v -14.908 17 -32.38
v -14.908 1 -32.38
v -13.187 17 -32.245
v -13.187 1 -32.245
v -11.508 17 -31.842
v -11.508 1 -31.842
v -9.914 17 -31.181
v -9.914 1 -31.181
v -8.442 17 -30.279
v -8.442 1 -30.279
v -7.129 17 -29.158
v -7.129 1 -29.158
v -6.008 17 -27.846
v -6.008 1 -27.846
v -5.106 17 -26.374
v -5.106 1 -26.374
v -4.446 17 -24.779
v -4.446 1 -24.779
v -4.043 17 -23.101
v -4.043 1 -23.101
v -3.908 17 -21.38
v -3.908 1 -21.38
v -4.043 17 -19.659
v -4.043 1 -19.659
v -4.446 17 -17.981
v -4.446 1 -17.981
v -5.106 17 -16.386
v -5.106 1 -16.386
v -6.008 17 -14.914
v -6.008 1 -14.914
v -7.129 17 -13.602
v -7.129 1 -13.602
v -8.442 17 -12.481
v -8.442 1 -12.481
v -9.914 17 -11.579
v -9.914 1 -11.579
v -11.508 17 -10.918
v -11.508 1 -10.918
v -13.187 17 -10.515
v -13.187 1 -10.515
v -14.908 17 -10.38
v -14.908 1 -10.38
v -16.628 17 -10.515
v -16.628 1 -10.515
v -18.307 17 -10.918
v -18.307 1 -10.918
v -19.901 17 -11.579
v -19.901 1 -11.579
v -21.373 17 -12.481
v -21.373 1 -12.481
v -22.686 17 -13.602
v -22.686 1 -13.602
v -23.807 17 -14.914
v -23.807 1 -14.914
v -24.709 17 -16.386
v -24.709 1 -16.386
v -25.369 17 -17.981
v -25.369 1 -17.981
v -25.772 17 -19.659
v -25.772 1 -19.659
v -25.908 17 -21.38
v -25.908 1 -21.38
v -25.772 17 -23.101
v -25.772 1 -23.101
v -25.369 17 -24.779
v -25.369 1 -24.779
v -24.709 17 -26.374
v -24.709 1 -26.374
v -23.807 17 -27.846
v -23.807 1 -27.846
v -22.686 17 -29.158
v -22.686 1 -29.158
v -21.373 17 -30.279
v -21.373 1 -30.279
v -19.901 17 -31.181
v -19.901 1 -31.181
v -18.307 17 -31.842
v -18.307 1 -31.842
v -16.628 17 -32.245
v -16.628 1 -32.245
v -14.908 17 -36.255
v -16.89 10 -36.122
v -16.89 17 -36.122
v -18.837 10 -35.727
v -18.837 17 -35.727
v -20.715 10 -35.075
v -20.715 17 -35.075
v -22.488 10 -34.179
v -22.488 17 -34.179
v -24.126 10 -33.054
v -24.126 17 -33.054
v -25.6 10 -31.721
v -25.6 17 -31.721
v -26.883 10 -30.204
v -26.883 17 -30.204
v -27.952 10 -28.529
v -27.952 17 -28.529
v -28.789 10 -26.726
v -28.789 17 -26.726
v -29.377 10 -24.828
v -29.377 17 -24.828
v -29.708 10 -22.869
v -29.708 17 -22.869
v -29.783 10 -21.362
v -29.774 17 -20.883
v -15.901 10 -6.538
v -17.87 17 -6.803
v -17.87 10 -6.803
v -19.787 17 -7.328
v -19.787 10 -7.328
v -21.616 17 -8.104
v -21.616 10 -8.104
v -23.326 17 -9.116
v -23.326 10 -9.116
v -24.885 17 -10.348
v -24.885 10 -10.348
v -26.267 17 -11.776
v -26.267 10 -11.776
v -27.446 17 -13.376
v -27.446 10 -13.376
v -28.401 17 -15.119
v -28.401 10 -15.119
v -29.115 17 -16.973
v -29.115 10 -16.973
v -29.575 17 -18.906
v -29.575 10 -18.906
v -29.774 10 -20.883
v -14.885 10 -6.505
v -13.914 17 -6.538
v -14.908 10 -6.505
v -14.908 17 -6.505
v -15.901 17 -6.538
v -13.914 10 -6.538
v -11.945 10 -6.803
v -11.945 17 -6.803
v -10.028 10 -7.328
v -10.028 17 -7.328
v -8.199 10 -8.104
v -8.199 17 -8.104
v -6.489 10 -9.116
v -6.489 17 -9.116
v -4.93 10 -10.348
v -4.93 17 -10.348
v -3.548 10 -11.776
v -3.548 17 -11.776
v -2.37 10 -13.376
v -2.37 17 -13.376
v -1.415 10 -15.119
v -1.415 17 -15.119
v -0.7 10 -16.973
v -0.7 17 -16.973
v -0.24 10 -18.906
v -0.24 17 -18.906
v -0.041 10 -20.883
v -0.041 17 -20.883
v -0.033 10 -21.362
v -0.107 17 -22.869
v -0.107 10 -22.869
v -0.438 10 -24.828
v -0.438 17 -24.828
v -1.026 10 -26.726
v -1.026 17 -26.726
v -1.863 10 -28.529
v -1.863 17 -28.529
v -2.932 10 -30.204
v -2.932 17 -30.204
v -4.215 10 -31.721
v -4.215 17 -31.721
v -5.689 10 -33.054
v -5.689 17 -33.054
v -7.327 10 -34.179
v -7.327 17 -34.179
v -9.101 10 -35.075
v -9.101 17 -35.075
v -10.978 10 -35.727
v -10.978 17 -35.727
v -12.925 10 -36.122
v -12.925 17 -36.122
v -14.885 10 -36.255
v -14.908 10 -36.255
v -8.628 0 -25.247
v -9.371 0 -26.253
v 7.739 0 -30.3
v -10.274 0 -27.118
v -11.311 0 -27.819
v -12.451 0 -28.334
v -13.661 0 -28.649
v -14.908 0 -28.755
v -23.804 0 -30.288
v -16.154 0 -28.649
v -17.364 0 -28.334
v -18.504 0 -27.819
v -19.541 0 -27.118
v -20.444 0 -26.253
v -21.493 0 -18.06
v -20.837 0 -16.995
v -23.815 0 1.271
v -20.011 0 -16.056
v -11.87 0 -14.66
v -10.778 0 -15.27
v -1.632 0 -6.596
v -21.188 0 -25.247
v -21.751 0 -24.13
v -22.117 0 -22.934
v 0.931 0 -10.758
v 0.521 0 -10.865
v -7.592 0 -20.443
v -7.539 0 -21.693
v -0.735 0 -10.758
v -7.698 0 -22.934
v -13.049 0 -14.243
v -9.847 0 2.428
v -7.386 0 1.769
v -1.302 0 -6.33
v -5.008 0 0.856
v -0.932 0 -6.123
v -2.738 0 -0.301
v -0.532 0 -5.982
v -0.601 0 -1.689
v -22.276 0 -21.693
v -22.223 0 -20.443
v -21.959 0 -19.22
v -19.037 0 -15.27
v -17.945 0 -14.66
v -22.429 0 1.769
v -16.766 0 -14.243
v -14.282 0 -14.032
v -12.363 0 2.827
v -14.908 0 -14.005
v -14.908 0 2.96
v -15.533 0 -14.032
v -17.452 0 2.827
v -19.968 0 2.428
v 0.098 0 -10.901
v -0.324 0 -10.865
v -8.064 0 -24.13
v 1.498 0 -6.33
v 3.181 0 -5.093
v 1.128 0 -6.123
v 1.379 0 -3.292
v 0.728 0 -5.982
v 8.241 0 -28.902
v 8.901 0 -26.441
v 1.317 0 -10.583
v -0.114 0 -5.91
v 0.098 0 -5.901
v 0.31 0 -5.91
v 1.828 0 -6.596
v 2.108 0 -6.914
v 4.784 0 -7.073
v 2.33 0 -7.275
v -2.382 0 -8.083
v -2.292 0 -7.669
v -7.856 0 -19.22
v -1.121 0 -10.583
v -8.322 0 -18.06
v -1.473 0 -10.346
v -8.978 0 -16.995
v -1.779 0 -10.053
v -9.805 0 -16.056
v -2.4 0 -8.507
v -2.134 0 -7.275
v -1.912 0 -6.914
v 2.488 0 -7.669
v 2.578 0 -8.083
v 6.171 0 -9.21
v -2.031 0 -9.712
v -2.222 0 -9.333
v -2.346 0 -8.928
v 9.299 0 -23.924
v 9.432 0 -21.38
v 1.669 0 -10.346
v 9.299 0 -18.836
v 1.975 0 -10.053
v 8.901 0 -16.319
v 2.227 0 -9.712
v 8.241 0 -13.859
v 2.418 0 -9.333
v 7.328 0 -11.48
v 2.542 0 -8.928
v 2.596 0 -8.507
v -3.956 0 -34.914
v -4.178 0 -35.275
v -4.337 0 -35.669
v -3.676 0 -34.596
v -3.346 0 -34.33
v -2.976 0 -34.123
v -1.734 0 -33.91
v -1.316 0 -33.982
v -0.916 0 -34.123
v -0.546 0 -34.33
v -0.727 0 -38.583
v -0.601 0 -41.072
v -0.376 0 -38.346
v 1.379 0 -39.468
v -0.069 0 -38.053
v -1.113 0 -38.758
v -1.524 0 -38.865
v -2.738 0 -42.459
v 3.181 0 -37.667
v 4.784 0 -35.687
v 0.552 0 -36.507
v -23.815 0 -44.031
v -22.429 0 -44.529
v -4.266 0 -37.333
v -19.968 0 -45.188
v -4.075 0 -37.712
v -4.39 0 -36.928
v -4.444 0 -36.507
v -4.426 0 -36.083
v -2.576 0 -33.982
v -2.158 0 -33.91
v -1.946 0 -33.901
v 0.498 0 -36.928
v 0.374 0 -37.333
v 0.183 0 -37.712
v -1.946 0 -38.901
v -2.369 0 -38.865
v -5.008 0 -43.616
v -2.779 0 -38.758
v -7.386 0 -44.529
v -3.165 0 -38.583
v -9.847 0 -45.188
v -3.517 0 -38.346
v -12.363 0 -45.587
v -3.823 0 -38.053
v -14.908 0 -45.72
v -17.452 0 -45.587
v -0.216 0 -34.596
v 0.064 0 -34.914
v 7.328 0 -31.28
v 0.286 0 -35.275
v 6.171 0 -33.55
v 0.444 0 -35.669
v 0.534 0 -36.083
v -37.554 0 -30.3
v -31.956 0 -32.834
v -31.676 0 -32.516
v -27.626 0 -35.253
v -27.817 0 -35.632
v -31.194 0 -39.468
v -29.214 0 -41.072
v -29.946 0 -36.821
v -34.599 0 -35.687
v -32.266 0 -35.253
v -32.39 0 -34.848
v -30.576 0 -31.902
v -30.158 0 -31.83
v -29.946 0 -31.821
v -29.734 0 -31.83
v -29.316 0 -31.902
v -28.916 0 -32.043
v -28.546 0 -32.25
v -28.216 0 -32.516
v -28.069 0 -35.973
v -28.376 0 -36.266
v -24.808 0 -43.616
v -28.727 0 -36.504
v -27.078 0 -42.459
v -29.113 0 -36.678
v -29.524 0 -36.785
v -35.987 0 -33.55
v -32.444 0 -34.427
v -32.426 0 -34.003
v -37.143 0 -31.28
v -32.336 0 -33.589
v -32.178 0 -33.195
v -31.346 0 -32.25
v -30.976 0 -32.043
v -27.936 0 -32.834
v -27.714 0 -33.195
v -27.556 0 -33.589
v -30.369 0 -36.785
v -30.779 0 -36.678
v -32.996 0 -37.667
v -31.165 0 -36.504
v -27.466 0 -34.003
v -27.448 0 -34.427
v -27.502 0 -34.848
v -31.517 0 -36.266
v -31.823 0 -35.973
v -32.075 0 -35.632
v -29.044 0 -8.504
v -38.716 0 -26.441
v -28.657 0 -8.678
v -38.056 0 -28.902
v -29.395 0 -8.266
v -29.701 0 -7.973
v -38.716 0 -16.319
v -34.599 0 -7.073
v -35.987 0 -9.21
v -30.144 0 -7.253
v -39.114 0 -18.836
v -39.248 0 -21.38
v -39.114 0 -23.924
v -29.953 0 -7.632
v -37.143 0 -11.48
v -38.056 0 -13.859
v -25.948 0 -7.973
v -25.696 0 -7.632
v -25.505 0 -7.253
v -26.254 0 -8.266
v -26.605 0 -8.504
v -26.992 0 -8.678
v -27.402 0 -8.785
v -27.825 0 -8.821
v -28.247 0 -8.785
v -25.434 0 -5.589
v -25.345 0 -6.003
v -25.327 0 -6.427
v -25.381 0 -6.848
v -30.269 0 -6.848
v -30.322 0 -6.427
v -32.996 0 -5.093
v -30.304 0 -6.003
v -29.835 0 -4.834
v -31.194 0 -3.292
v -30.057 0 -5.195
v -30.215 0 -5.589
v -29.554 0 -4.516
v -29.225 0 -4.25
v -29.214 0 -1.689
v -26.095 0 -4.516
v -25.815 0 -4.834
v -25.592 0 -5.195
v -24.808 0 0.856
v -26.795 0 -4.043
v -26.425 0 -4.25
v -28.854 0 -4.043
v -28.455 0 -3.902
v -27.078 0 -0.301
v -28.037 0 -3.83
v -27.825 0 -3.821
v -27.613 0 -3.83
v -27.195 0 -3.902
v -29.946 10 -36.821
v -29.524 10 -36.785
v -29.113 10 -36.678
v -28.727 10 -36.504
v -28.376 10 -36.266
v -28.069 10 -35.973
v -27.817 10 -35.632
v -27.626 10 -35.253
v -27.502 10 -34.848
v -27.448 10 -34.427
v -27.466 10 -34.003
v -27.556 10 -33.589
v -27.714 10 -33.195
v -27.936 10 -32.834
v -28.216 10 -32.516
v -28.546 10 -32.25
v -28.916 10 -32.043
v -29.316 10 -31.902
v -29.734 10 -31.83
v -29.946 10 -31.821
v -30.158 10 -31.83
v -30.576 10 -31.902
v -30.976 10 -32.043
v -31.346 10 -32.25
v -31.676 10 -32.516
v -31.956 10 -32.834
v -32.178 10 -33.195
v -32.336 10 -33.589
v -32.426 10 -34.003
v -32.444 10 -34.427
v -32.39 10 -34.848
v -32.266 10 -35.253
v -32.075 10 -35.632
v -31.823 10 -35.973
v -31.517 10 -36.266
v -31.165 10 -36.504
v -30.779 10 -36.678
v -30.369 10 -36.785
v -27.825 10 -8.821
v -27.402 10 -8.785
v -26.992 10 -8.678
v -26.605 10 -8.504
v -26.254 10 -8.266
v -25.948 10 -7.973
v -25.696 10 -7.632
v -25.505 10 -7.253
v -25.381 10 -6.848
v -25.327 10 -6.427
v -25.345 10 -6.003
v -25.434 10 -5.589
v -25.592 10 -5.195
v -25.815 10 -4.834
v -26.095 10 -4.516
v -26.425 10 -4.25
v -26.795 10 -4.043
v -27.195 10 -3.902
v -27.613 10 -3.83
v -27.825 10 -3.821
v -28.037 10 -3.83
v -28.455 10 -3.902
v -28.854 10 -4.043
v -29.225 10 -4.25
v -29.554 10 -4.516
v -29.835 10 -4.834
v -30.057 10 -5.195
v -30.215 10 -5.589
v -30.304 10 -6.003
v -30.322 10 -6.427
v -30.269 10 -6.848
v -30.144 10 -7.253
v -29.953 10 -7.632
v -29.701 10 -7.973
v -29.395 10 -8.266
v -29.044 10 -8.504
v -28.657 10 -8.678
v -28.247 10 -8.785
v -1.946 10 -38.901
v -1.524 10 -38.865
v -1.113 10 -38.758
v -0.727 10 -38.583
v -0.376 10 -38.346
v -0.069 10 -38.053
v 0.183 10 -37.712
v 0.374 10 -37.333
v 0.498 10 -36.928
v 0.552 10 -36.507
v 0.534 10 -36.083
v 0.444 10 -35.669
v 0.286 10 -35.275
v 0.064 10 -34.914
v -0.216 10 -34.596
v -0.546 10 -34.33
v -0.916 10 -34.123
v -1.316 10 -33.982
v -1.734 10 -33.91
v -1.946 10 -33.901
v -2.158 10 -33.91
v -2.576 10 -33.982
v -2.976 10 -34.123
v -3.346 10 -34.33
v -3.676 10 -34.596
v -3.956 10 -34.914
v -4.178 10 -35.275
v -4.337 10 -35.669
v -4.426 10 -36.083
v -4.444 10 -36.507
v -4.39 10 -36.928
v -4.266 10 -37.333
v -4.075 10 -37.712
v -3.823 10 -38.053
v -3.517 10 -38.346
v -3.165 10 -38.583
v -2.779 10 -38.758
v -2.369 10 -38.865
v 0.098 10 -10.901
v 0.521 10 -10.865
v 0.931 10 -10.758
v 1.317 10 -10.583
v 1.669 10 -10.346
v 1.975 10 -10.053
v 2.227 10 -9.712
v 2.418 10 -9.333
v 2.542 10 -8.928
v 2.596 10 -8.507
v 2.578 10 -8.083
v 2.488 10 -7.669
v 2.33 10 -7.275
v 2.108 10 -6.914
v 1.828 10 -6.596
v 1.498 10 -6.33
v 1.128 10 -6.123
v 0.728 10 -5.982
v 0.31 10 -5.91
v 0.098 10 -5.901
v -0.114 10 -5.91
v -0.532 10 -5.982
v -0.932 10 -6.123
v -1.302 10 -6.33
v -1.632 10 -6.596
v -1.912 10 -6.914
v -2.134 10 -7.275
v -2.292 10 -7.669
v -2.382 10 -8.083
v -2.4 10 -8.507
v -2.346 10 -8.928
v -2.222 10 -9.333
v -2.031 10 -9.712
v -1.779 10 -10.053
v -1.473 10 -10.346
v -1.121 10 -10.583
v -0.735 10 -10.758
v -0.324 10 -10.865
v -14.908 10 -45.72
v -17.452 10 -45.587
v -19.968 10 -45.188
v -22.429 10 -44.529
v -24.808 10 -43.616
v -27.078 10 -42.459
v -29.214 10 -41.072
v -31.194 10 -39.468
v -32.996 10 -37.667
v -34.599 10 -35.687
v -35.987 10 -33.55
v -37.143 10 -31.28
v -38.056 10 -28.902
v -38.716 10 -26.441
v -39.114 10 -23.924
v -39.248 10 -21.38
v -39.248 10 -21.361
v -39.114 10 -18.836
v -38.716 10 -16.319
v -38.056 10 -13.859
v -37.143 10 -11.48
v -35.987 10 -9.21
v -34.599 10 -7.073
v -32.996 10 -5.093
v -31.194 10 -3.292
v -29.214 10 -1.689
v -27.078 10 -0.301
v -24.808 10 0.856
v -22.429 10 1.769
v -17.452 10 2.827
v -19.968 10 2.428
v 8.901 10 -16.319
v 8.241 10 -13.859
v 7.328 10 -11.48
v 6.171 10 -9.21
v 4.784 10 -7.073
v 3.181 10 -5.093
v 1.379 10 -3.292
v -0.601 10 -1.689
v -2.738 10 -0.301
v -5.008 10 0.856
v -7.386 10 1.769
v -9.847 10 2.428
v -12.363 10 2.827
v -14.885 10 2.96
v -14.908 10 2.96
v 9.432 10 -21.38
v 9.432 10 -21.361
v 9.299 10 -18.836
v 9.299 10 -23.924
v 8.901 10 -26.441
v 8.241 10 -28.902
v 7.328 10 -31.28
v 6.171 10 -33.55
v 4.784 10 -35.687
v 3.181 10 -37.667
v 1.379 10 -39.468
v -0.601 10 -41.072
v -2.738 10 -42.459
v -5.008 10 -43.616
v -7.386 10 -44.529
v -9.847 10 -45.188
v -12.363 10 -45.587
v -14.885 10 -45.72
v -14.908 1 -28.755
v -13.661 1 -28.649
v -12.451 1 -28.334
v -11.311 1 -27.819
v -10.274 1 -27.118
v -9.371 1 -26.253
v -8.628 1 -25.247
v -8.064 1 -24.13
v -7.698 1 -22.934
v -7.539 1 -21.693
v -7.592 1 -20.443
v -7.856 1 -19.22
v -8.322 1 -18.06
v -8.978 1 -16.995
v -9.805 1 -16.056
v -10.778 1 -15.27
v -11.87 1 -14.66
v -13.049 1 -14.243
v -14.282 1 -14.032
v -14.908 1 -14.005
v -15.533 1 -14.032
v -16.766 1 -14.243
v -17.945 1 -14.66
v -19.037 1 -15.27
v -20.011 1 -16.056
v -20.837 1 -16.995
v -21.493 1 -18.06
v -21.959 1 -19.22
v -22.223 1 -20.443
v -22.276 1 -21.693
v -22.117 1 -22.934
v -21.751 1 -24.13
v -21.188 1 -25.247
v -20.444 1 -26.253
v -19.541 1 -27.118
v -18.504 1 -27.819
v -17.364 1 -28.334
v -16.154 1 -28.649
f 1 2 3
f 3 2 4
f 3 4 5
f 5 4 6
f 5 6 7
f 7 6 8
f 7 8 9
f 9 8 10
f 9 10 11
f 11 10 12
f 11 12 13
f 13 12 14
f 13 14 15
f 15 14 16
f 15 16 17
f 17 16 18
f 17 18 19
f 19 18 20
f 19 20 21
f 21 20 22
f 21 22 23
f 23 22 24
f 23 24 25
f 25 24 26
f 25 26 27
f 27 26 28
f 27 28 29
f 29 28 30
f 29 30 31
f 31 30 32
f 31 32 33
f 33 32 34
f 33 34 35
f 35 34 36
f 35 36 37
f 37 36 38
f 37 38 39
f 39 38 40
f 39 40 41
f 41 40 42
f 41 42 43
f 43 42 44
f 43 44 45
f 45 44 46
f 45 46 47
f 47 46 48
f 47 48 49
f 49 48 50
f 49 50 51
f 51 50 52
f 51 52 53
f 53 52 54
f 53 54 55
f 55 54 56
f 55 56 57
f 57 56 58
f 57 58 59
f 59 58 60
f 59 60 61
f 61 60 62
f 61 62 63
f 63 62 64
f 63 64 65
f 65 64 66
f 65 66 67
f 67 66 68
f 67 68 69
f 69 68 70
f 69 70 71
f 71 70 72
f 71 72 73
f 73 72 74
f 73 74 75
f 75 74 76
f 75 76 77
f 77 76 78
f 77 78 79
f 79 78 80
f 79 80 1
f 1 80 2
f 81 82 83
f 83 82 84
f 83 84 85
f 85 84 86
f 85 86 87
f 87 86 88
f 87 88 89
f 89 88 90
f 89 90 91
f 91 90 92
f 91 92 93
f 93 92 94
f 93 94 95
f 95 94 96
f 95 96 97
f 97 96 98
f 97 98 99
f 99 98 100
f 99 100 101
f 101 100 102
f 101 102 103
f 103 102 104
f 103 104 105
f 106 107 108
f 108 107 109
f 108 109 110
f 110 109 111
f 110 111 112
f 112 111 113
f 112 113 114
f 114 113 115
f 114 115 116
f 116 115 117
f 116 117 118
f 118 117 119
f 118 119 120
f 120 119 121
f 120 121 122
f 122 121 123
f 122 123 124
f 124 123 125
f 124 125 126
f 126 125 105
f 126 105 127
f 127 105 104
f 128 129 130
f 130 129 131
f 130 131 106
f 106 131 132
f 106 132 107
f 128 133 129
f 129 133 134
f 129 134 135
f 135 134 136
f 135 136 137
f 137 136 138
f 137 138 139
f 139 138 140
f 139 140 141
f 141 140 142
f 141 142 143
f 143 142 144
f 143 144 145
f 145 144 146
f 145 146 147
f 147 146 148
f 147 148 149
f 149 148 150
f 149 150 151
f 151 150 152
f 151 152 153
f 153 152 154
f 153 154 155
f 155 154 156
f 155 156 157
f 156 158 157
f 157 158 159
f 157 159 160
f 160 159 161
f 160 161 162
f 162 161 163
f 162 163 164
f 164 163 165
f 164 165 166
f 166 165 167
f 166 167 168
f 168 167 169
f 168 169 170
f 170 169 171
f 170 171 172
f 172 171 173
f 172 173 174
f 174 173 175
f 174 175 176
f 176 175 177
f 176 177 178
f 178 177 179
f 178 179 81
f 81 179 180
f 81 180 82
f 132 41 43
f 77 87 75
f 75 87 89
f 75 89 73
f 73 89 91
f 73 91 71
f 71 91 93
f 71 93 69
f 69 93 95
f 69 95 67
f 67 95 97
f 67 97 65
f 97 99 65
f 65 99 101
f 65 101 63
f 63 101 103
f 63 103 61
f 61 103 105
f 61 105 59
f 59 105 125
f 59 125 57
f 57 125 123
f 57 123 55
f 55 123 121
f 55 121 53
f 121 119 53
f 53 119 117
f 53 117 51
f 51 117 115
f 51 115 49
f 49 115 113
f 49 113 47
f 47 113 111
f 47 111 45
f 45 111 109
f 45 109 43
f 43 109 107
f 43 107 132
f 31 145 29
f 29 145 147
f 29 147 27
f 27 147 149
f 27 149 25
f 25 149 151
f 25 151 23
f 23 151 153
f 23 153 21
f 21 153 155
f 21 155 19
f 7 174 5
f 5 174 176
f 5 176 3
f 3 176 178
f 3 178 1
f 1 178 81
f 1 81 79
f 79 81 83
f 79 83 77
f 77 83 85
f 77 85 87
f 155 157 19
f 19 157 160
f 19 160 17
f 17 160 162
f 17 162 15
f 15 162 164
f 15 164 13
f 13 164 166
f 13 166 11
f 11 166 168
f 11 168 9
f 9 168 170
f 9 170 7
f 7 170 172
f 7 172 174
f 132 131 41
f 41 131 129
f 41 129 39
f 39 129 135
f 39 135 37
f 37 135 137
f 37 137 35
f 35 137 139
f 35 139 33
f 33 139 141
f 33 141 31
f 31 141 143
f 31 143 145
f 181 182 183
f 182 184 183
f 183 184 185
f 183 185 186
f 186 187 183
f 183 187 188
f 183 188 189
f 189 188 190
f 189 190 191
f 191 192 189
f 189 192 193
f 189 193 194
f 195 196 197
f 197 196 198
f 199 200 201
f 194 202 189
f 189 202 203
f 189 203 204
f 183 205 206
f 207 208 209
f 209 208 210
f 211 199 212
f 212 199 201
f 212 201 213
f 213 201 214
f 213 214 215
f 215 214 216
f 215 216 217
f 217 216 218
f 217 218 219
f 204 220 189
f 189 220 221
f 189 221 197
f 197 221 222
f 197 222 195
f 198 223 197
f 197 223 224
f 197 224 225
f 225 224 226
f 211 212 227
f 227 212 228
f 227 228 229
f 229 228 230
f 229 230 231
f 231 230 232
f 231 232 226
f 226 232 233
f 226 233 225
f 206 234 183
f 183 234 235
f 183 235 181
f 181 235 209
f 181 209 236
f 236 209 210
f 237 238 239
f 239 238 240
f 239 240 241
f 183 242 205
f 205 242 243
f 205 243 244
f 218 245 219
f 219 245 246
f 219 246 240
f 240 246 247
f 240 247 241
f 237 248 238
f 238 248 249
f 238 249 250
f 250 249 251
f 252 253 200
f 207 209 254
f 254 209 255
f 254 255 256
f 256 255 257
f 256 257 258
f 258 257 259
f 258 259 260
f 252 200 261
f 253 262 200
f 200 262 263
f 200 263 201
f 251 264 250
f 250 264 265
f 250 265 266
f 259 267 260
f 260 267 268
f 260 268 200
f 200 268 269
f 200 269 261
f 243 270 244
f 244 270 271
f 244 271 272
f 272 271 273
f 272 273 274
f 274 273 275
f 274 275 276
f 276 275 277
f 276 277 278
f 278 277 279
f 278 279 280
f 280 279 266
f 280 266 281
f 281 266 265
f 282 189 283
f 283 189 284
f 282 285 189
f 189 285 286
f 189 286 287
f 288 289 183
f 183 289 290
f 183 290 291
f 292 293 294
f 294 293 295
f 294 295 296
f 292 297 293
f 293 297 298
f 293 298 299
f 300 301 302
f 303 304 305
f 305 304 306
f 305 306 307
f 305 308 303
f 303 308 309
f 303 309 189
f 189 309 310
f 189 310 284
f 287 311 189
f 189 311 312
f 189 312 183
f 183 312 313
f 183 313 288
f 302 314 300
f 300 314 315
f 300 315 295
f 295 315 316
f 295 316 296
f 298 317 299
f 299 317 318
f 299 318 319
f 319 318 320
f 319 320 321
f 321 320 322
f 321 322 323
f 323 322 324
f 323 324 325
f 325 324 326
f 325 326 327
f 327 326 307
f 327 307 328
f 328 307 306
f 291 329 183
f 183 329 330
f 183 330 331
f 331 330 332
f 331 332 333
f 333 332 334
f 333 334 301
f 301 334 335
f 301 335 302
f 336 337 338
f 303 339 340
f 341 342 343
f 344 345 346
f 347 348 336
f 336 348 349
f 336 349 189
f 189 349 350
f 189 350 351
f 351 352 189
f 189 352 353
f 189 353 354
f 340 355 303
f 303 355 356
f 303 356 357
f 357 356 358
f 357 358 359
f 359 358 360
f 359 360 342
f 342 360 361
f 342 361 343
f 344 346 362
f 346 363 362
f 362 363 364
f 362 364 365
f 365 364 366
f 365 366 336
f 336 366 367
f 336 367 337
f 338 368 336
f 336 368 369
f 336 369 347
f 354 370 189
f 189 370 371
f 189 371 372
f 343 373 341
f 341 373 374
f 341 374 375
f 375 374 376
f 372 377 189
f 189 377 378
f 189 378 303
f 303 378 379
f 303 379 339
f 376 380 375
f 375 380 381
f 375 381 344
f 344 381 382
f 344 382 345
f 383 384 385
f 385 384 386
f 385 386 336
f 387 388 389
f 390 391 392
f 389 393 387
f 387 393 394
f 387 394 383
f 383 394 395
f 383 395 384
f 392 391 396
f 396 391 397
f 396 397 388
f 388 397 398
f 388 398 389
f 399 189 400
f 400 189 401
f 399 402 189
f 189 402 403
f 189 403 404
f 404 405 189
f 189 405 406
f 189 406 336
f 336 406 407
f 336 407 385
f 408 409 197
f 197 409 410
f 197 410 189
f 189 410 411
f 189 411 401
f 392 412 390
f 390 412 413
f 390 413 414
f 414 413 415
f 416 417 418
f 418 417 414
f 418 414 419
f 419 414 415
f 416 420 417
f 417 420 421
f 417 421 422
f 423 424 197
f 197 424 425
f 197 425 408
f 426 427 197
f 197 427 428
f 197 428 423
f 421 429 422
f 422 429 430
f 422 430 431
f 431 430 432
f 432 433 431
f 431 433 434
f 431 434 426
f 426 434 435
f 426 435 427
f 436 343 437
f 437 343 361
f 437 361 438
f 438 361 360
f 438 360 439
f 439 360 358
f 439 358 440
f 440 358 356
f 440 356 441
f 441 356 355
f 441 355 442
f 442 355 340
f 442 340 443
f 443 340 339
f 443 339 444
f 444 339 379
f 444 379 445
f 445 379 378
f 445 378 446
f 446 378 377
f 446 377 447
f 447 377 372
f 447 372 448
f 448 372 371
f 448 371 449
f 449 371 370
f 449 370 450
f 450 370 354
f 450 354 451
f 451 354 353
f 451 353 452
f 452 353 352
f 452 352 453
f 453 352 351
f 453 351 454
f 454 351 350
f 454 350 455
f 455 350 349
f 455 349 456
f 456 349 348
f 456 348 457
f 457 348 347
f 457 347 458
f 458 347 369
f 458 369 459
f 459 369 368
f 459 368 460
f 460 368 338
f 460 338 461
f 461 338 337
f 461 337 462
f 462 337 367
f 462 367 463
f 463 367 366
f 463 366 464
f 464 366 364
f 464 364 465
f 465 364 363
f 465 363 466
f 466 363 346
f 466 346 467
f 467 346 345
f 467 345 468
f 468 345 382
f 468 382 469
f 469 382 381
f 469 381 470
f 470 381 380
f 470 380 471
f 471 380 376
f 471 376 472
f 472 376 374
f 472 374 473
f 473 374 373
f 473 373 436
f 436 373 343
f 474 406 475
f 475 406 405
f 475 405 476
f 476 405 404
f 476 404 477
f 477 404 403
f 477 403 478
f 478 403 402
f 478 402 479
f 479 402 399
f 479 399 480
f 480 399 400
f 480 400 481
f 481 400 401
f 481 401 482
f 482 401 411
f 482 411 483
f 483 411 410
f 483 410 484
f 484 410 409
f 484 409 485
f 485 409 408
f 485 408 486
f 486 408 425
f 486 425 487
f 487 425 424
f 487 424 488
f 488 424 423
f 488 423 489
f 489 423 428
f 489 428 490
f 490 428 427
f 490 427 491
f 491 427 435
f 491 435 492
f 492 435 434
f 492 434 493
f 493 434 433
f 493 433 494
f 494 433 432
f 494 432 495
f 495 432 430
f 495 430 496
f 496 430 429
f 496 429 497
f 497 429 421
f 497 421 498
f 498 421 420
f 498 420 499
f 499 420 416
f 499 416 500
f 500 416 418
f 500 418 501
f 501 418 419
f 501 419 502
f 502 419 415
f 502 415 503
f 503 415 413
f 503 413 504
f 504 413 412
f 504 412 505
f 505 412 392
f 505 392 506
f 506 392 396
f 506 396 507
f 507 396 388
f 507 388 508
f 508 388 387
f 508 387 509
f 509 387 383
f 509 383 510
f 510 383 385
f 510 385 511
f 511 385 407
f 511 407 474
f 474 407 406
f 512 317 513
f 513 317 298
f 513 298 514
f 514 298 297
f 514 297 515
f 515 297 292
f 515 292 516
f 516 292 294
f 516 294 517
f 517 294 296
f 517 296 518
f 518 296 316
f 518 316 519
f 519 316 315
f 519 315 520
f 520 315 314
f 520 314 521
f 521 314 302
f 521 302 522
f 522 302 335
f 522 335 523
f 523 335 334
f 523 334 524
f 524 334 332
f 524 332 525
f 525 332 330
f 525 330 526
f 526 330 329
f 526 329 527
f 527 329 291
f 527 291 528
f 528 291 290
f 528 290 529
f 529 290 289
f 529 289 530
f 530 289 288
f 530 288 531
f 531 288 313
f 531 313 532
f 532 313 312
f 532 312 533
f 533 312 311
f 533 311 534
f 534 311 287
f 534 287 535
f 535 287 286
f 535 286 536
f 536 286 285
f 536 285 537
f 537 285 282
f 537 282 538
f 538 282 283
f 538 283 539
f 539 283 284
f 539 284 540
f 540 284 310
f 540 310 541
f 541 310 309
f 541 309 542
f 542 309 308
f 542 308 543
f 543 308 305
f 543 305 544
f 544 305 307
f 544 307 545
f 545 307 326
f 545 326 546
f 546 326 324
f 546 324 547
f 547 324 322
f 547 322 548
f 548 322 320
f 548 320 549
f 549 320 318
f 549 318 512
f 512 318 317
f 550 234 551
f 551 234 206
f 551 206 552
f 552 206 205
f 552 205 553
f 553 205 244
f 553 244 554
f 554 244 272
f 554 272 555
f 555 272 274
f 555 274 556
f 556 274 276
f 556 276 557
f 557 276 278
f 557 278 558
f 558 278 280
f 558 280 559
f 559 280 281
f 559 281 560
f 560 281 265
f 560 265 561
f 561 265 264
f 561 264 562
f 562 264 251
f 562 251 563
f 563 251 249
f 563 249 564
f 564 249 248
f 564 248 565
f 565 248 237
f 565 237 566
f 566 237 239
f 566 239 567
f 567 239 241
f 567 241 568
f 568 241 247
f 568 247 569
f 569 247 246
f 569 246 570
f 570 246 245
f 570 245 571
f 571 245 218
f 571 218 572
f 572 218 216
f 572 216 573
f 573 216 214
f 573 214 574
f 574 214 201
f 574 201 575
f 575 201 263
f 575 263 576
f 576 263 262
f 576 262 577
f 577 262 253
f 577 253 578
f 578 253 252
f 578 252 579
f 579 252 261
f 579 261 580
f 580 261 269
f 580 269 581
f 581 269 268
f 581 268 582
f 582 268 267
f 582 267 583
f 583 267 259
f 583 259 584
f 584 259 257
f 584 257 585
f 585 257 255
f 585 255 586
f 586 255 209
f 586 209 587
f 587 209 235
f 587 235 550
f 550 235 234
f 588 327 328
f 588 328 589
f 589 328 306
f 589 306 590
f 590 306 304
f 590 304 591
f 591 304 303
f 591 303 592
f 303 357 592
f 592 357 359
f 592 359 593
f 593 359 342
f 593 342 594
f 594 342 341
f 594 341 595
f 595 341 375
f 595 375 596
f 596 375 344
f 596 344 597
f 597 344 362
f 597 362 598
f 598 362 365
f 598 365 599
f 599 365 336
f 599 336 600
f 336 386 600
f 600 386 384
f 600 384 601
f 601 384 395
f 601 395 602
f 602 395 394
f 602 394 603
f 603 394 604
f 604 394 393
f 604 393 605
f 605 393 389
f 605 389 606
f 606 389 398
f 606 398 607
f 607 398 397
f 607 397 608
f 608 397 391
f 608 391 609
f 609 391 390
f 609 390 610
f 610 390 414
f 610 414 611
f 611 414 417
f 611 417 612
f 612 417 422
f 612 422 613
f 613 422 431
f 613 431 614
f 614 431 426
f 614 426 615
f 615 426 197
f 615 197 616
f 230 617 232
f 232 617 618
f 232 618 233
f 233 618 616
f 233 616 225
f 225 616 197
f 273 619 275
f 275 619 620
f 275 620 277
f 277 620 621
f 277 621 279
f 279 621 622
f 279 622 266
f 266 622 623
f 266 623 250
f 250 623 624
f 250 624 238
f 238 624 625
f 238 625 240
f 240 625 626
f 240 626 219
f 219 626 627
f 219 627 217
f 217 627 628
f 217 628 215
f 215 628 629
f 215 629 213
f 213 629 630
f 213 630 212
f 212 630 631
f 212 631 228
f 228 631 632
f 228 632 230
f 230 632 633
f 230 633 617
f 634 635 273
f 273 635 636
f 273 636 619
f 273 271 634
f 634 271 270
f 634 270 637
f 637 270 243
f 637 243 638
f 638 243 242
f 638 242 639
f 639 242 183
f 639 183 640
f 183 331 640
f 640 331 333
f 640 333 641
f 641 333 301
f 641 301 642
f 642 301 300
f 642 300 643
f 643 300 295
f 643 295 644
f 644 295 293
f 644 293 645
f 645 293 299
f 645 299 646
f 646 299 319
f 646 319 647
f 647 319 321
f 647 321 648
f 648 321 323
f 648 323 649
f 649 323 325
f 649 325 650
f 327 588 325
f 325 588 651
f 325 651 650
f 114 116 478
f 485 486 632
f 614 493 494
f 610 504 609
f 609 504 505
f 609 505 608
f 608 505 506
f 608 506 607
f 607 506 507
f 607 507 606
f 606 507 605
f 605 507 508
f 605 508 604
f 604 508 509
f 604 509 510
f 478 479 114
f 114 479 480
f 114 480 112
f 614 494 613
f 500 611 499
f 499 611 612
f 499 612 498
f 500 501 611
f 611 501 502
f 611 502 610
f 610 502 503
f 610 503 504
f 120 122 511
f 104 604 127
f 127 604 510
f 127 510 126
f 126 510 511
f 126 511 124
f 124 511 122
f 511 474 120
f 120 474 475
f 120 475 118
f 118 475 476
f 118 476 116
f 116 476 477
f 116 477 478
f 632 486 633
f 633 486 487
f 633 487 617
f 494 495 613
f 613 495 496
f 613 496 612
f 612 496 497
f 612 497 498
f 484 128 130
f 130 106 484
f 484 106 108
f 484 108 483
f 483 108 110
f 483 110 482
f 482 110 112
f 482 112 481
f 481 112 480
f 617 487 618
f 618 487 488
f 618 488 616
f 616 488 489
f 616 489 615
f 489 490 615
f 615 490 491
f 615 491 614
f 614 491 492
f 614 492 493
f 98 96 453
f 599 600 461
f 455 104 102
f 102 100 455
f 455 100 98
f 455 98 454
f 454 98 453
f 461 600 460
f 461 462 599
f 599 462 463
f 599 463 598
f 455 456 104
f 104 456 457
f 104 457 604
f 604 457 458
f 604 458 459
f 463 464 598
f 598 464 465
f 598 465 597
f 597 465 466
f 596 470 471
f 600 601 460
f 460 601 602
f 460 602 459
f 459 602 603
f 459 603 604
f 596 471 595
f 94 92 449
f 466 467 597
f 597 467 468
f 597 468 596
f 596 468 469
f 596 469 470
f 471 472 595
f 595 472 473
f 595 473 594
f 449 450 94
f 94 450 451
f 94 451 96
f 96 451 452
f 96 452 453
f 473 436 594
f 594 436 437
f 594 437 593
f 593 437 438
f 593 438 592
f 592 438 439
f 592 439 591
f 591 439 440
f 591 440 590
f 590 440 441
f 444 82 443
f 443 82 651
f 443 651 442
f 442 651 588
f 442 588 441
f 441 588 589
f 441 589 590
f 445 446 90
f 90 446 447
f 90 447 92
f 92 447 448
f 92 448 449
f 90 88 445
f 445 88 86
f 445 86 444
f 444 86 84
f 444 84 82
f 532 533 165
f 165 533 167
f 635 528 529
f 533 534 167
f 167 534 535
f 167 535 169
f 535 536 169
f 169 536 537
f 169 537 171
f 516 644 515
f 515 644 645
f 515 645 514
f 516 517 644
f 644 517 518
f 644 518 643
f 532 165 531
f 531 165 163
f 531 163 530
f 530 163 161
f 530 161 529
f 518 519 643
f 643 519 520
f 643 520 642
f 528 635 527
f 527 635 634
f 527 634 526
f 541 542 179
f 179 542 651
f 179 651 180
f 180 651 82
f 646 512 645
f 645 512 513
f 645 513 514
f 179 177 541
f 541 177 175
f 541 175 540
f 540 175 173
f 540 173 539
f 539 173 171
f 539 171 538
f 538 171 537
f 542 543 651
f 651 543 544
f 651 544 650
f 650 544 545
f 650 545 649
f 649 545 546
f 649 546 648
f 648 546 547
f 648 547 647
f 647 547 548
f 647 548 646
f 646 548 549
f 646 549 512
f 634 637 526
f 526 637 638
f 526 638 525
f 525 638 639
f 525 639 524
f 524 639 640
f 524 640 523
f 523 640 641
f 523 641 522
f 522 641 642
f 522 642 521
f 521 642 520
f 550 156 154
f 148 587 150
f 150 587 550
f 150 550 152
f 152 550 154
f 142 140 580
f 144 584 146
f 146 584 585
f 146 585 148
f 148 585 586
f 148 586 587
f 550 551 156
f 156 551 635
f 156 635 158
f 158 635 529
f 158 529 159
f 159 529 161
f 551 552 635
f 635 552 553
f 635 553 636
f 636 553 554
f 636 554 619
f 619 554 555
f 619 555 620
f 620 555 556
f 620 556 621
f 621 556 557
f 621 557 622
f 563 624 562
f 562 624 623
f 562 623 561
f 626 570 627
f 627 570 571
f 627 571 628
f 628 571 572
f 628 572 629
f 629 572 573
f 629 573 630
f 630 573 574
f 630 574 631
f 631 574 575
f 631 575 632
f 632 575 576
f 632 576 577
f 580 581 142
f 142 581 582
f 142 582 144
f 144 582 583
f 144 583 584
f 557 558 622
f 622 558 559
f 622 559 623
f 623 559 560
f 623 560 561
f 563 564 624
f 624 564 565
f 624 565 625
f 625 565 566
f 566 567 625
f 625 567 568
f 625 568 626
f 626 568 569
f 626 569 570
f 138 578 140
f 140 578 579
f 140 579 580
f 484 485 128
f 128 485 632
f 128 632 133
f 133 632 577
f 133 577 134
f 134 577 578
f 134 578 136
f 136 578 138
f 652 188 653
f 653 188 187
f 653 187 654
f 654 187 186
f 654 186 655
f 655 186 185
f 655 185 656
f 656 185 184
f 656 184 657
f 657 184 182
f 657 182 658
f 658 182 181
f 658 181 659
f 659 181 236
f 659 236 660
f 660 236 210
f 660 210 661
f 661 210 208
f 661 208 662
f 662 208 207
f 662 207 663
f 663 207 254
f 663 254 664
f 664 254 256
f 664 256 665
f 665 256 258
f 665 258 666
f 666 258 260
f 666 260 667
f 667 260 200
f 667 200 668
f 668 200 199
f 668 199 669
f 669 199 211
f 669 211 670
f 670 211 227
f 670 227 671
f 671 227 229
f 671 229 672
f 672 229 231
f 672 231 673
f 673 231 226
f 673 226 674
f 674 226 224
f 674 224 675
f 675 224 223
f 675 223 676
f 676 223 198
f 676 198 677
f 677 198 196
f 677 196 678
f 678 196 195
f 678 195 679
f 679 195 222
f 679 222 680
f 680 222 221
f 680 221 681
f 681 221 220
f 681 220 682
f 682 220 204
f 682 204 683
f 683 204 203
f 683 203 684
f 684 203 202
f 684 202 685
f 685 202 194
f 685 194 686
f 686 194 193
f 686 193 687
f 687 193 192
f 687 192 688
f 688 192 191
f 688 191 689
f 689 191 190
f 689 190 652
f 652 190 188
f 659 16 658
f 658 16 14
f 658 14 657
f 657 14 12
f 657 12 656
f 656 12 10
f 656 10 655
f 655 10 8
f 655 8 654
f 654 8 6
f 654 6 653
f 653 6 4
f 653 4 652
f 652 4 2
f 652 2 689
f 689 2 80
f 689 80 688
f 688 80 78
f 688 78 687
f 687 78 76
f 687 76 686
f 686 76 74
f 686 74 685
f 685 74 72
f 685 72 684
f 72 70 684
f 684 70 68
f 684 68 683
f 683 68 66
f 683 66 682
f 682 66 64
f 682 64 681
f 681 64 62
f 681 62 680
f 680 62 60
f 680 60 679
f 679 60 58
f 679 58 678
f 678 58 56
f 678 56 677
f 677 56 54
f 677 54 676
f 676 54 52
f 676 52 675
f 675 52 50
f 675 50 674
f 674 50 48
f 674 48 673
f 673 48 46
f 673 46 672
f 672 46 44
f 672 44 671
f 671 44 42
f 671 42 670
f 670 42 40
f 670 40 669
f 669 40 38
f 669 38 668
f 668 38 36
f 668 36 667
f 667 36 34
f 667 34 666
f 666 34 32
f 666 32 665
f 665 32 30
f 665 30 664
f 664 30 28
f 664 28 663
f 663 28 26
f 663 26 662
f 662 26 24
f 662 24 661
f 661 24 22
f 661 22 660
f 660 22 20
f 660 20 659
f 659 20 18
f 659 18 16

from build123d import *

# Parameters (mm, degrees)
SKETCH1_R            = 14.875
SKETCH1_R_2          = 11
BOSS_EXTRUDE13_DEPTH = 17
SKETCH1_14_R         = 24.34
SKETCH1_14_R_2       = 2.5
SKETCH1_14_R_3       = 14.875
BOSS_EXTRUDE14_DEPTH = 10
SKETCH1_16_R         = 11
SKETCH1_16_R_2       = 7.375
BOSS_EXTRUDE15_DEPTH = 1


with BuildPart() as part:
    # Sketch1 → Boss-Extrude13 (new body)
    with BuildSketch(Plane(origin=(0, 0, 0), x_dir=(1, 0, 0), z_dir=(0, 1, 0))):
        with Locations((-14.907558872, 21.380040763)):
            Circle(SKETCH1_R)
        with Locations((-14.907558872, 21.380040763)):
            Circle(SKETCH1_R_2, mode=Mode.SUBTRACT)
    extrude(amount=BOSS_EXTRUDE13_DEPTH)

    # Sketch1<14> → Boss-Extrude14 (add)
    with BuildSketch(Plane(origin=(0, 0, 0), x_dir=(1, 0, 0), z_dir=(0, 1, 0))):
        with Locations((-14.907558872, 21.380040763)):
            Circle(SKETCH1_14_R)
        with Locations((-27.824633533, 6.320997559)):
            Circle(SKETCH1_14_R_2, mode=Mode.SUBTRACT)
        with Locations((0.098010813, 8.400885227)):
            Circle(SKETCH1_14_R_2, mode=Mode.SUBTRACT)
        with Locations((-29.946083972, 34.320997559)):
            Circle(SKETCH1_14_R_2, mode=Mode.SUBTRACT)
        with Locations((-14.907558872, 21.380040763)):
            Circle(SKETCH1_14_R_3, mode=Mode.SUBTRACT)
        with Locations((-1.946083972, 36.400885227)):
            Circle(SKETCH1_14_R_2, mode=Mode.SUBTRACT)
    extrude(amount=BOSS_EXTRUDE14_DEPTH)

    # Sketch1<16> → Boss-Extrude15 (add)
    with BuildSketch(Plane(origin=(0, 0, 0), x_dir=(1, 0, 0), z_dir=(0, 1, 0))):
        with Locations((-14.907558872, 21.380040763)):
            Circle(SKETCH1_16_R)
        with Locations((-14.907558872, 21.380040763)):
            Circle(SKETCH1_16_R_2, mode=Mode.SUBTRACT)
    extrude(amount=BOSS_EXTRUDE15_DEPTH)


solid = part.part
